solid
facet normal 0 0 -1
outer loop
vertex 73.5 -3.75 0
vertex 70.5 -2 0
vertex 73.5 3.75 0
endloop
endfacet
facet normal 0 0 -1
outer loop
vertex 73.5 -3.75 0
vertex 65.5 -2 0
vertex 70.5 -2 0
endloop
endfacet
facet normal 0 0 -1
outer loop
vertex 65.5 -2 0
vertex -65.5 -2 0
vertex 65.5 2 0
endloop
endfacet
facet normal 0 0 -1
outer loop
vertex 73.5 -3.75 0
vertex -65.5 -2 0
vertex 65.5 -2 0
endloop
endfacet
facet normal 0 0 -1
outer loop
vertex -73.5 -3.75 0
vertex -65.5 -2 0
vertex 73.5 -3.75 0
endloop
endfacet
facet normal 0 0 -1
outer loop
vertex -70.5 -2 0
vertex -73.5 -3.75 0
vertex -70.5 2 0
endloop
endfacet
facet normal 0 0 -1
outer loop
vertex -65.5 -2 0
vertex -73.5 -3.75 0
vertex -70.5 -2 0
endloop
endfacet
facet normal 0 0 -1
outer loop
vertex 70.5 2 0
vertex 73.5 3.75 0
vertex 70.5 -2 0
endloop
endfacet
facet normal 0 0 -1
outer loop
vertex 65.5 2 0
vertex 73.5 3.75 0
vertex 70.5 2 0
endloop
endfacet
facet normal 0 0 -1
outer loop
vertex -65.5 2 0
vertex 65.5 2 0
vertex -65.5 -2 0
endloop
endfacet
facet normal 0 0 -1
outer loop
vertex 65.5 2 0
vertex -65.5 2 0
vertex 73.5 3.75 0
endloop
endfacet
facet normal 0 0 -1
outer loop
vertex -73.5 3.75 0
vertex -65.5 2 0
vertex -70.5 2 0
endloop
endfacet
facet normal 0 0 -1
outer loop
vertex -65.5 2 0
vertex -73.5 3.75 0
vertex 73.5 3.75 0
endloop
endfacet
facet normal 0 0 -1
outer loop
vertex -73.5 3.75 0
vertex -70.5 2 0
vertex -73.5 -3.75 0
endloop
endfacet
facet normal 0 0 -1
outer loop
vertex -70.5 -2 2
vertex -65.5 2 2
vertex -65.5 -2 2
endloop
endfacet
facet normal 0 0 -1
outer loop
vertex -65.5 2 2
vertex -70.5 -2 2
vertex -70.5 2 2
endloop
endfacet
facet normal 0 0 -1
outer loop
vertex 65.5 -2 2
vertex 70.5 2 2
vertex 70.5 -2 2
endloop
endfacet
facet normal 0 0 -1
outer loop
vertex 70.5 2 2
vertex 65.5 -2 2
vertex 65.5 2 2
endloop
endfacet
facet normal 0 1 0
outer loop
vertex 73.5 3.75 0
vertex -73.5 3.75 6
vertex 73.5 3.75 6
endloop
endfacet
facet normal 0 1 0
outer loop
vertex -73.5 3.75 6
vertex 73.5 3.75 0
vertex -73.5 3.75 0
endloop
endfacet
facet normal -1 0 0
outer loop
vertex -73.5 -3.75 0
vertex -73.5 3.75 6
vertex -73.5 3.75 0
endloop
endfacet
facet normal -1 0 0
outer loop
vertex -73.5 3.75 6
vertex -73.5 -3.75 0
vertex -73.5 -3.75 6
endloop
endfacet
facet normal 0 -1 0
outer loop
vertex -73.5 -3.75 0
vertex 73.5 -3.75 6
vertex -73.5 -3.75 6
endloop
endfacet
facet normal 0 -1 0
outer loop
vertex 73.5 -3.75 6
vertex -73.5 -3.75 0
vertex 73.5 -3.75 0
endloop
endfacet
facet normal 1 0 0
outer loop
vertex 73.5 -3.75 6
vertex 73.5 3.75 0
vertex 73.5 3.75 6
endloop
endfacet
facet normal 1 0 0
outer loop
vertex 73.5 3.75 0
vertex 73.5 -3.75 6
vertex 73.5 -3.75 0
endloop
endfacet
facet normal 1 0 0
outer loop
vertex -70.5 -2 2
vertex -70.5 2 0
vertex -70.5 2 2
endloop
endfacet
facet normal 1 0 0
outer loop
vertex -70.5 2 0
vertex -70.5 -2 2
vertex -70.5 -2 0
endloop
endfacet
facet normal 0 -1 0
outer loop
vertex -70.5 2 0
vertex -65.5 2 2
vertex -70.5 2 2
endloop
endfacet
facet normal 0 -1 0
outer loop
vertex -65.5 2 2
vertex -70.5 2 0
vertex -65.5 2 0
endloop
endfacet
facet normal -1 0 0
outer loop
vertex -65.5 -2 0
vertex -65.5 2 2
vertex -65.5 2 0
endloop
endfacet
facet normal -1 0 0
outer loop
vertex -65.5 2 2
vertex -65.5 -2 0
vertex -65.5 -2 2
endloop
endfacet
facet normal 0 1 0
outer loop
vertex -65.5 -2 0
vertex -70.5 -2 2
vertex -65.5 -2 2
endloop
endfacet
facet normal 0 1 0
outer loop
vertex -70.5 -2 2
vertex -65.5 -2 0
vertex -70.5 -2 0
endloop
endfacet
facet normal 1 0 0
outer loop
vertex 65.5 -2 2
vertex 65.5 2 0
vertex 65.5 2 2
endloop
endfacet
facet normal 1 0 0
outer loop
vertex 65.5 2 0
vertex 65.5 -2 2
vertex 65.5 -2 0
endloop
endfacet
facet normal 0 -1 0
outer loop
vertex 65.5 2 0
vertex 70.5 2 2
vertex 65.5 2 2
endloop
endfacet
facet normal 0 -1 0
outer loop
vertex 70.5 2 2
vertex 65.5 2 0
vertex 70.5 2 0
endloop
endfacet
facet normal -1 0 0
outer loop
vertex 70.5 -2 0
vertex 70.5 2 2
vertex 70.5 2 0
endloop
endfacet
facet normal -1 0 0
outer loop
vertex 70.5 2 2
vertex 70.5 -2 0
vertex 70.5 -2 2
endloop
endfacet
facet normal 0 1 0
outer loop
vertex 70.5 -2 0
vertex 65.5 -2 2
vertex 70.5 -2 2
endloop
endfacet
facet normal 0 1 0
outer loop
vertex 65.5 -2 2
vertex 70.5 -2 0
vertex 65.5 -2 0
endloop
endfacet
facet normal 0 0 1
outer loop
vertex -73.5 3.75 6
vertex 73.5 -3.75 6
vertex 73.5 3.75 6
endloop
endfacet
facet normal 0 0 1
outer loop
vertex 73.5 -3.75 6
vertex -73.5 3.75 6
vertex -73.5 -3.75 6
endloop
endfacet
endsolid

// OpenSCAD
$fn=100;

length=147;
width=7.5;
height=6;

depth=2;

linear_extrude(depth) {
  difference() {
    square([length, width], center=true);
    translate([-(length/2)+3+2.5, 0]) {
      square([5, 4], center=true);
    }
    translate([(length/2)-3-2.5, 0]) {
      square([5, 4], center=true);
    }
  }
}

translate([0,0,depth])
linear_extrude(height-depth) {
  square([length, width], center=true);
}
